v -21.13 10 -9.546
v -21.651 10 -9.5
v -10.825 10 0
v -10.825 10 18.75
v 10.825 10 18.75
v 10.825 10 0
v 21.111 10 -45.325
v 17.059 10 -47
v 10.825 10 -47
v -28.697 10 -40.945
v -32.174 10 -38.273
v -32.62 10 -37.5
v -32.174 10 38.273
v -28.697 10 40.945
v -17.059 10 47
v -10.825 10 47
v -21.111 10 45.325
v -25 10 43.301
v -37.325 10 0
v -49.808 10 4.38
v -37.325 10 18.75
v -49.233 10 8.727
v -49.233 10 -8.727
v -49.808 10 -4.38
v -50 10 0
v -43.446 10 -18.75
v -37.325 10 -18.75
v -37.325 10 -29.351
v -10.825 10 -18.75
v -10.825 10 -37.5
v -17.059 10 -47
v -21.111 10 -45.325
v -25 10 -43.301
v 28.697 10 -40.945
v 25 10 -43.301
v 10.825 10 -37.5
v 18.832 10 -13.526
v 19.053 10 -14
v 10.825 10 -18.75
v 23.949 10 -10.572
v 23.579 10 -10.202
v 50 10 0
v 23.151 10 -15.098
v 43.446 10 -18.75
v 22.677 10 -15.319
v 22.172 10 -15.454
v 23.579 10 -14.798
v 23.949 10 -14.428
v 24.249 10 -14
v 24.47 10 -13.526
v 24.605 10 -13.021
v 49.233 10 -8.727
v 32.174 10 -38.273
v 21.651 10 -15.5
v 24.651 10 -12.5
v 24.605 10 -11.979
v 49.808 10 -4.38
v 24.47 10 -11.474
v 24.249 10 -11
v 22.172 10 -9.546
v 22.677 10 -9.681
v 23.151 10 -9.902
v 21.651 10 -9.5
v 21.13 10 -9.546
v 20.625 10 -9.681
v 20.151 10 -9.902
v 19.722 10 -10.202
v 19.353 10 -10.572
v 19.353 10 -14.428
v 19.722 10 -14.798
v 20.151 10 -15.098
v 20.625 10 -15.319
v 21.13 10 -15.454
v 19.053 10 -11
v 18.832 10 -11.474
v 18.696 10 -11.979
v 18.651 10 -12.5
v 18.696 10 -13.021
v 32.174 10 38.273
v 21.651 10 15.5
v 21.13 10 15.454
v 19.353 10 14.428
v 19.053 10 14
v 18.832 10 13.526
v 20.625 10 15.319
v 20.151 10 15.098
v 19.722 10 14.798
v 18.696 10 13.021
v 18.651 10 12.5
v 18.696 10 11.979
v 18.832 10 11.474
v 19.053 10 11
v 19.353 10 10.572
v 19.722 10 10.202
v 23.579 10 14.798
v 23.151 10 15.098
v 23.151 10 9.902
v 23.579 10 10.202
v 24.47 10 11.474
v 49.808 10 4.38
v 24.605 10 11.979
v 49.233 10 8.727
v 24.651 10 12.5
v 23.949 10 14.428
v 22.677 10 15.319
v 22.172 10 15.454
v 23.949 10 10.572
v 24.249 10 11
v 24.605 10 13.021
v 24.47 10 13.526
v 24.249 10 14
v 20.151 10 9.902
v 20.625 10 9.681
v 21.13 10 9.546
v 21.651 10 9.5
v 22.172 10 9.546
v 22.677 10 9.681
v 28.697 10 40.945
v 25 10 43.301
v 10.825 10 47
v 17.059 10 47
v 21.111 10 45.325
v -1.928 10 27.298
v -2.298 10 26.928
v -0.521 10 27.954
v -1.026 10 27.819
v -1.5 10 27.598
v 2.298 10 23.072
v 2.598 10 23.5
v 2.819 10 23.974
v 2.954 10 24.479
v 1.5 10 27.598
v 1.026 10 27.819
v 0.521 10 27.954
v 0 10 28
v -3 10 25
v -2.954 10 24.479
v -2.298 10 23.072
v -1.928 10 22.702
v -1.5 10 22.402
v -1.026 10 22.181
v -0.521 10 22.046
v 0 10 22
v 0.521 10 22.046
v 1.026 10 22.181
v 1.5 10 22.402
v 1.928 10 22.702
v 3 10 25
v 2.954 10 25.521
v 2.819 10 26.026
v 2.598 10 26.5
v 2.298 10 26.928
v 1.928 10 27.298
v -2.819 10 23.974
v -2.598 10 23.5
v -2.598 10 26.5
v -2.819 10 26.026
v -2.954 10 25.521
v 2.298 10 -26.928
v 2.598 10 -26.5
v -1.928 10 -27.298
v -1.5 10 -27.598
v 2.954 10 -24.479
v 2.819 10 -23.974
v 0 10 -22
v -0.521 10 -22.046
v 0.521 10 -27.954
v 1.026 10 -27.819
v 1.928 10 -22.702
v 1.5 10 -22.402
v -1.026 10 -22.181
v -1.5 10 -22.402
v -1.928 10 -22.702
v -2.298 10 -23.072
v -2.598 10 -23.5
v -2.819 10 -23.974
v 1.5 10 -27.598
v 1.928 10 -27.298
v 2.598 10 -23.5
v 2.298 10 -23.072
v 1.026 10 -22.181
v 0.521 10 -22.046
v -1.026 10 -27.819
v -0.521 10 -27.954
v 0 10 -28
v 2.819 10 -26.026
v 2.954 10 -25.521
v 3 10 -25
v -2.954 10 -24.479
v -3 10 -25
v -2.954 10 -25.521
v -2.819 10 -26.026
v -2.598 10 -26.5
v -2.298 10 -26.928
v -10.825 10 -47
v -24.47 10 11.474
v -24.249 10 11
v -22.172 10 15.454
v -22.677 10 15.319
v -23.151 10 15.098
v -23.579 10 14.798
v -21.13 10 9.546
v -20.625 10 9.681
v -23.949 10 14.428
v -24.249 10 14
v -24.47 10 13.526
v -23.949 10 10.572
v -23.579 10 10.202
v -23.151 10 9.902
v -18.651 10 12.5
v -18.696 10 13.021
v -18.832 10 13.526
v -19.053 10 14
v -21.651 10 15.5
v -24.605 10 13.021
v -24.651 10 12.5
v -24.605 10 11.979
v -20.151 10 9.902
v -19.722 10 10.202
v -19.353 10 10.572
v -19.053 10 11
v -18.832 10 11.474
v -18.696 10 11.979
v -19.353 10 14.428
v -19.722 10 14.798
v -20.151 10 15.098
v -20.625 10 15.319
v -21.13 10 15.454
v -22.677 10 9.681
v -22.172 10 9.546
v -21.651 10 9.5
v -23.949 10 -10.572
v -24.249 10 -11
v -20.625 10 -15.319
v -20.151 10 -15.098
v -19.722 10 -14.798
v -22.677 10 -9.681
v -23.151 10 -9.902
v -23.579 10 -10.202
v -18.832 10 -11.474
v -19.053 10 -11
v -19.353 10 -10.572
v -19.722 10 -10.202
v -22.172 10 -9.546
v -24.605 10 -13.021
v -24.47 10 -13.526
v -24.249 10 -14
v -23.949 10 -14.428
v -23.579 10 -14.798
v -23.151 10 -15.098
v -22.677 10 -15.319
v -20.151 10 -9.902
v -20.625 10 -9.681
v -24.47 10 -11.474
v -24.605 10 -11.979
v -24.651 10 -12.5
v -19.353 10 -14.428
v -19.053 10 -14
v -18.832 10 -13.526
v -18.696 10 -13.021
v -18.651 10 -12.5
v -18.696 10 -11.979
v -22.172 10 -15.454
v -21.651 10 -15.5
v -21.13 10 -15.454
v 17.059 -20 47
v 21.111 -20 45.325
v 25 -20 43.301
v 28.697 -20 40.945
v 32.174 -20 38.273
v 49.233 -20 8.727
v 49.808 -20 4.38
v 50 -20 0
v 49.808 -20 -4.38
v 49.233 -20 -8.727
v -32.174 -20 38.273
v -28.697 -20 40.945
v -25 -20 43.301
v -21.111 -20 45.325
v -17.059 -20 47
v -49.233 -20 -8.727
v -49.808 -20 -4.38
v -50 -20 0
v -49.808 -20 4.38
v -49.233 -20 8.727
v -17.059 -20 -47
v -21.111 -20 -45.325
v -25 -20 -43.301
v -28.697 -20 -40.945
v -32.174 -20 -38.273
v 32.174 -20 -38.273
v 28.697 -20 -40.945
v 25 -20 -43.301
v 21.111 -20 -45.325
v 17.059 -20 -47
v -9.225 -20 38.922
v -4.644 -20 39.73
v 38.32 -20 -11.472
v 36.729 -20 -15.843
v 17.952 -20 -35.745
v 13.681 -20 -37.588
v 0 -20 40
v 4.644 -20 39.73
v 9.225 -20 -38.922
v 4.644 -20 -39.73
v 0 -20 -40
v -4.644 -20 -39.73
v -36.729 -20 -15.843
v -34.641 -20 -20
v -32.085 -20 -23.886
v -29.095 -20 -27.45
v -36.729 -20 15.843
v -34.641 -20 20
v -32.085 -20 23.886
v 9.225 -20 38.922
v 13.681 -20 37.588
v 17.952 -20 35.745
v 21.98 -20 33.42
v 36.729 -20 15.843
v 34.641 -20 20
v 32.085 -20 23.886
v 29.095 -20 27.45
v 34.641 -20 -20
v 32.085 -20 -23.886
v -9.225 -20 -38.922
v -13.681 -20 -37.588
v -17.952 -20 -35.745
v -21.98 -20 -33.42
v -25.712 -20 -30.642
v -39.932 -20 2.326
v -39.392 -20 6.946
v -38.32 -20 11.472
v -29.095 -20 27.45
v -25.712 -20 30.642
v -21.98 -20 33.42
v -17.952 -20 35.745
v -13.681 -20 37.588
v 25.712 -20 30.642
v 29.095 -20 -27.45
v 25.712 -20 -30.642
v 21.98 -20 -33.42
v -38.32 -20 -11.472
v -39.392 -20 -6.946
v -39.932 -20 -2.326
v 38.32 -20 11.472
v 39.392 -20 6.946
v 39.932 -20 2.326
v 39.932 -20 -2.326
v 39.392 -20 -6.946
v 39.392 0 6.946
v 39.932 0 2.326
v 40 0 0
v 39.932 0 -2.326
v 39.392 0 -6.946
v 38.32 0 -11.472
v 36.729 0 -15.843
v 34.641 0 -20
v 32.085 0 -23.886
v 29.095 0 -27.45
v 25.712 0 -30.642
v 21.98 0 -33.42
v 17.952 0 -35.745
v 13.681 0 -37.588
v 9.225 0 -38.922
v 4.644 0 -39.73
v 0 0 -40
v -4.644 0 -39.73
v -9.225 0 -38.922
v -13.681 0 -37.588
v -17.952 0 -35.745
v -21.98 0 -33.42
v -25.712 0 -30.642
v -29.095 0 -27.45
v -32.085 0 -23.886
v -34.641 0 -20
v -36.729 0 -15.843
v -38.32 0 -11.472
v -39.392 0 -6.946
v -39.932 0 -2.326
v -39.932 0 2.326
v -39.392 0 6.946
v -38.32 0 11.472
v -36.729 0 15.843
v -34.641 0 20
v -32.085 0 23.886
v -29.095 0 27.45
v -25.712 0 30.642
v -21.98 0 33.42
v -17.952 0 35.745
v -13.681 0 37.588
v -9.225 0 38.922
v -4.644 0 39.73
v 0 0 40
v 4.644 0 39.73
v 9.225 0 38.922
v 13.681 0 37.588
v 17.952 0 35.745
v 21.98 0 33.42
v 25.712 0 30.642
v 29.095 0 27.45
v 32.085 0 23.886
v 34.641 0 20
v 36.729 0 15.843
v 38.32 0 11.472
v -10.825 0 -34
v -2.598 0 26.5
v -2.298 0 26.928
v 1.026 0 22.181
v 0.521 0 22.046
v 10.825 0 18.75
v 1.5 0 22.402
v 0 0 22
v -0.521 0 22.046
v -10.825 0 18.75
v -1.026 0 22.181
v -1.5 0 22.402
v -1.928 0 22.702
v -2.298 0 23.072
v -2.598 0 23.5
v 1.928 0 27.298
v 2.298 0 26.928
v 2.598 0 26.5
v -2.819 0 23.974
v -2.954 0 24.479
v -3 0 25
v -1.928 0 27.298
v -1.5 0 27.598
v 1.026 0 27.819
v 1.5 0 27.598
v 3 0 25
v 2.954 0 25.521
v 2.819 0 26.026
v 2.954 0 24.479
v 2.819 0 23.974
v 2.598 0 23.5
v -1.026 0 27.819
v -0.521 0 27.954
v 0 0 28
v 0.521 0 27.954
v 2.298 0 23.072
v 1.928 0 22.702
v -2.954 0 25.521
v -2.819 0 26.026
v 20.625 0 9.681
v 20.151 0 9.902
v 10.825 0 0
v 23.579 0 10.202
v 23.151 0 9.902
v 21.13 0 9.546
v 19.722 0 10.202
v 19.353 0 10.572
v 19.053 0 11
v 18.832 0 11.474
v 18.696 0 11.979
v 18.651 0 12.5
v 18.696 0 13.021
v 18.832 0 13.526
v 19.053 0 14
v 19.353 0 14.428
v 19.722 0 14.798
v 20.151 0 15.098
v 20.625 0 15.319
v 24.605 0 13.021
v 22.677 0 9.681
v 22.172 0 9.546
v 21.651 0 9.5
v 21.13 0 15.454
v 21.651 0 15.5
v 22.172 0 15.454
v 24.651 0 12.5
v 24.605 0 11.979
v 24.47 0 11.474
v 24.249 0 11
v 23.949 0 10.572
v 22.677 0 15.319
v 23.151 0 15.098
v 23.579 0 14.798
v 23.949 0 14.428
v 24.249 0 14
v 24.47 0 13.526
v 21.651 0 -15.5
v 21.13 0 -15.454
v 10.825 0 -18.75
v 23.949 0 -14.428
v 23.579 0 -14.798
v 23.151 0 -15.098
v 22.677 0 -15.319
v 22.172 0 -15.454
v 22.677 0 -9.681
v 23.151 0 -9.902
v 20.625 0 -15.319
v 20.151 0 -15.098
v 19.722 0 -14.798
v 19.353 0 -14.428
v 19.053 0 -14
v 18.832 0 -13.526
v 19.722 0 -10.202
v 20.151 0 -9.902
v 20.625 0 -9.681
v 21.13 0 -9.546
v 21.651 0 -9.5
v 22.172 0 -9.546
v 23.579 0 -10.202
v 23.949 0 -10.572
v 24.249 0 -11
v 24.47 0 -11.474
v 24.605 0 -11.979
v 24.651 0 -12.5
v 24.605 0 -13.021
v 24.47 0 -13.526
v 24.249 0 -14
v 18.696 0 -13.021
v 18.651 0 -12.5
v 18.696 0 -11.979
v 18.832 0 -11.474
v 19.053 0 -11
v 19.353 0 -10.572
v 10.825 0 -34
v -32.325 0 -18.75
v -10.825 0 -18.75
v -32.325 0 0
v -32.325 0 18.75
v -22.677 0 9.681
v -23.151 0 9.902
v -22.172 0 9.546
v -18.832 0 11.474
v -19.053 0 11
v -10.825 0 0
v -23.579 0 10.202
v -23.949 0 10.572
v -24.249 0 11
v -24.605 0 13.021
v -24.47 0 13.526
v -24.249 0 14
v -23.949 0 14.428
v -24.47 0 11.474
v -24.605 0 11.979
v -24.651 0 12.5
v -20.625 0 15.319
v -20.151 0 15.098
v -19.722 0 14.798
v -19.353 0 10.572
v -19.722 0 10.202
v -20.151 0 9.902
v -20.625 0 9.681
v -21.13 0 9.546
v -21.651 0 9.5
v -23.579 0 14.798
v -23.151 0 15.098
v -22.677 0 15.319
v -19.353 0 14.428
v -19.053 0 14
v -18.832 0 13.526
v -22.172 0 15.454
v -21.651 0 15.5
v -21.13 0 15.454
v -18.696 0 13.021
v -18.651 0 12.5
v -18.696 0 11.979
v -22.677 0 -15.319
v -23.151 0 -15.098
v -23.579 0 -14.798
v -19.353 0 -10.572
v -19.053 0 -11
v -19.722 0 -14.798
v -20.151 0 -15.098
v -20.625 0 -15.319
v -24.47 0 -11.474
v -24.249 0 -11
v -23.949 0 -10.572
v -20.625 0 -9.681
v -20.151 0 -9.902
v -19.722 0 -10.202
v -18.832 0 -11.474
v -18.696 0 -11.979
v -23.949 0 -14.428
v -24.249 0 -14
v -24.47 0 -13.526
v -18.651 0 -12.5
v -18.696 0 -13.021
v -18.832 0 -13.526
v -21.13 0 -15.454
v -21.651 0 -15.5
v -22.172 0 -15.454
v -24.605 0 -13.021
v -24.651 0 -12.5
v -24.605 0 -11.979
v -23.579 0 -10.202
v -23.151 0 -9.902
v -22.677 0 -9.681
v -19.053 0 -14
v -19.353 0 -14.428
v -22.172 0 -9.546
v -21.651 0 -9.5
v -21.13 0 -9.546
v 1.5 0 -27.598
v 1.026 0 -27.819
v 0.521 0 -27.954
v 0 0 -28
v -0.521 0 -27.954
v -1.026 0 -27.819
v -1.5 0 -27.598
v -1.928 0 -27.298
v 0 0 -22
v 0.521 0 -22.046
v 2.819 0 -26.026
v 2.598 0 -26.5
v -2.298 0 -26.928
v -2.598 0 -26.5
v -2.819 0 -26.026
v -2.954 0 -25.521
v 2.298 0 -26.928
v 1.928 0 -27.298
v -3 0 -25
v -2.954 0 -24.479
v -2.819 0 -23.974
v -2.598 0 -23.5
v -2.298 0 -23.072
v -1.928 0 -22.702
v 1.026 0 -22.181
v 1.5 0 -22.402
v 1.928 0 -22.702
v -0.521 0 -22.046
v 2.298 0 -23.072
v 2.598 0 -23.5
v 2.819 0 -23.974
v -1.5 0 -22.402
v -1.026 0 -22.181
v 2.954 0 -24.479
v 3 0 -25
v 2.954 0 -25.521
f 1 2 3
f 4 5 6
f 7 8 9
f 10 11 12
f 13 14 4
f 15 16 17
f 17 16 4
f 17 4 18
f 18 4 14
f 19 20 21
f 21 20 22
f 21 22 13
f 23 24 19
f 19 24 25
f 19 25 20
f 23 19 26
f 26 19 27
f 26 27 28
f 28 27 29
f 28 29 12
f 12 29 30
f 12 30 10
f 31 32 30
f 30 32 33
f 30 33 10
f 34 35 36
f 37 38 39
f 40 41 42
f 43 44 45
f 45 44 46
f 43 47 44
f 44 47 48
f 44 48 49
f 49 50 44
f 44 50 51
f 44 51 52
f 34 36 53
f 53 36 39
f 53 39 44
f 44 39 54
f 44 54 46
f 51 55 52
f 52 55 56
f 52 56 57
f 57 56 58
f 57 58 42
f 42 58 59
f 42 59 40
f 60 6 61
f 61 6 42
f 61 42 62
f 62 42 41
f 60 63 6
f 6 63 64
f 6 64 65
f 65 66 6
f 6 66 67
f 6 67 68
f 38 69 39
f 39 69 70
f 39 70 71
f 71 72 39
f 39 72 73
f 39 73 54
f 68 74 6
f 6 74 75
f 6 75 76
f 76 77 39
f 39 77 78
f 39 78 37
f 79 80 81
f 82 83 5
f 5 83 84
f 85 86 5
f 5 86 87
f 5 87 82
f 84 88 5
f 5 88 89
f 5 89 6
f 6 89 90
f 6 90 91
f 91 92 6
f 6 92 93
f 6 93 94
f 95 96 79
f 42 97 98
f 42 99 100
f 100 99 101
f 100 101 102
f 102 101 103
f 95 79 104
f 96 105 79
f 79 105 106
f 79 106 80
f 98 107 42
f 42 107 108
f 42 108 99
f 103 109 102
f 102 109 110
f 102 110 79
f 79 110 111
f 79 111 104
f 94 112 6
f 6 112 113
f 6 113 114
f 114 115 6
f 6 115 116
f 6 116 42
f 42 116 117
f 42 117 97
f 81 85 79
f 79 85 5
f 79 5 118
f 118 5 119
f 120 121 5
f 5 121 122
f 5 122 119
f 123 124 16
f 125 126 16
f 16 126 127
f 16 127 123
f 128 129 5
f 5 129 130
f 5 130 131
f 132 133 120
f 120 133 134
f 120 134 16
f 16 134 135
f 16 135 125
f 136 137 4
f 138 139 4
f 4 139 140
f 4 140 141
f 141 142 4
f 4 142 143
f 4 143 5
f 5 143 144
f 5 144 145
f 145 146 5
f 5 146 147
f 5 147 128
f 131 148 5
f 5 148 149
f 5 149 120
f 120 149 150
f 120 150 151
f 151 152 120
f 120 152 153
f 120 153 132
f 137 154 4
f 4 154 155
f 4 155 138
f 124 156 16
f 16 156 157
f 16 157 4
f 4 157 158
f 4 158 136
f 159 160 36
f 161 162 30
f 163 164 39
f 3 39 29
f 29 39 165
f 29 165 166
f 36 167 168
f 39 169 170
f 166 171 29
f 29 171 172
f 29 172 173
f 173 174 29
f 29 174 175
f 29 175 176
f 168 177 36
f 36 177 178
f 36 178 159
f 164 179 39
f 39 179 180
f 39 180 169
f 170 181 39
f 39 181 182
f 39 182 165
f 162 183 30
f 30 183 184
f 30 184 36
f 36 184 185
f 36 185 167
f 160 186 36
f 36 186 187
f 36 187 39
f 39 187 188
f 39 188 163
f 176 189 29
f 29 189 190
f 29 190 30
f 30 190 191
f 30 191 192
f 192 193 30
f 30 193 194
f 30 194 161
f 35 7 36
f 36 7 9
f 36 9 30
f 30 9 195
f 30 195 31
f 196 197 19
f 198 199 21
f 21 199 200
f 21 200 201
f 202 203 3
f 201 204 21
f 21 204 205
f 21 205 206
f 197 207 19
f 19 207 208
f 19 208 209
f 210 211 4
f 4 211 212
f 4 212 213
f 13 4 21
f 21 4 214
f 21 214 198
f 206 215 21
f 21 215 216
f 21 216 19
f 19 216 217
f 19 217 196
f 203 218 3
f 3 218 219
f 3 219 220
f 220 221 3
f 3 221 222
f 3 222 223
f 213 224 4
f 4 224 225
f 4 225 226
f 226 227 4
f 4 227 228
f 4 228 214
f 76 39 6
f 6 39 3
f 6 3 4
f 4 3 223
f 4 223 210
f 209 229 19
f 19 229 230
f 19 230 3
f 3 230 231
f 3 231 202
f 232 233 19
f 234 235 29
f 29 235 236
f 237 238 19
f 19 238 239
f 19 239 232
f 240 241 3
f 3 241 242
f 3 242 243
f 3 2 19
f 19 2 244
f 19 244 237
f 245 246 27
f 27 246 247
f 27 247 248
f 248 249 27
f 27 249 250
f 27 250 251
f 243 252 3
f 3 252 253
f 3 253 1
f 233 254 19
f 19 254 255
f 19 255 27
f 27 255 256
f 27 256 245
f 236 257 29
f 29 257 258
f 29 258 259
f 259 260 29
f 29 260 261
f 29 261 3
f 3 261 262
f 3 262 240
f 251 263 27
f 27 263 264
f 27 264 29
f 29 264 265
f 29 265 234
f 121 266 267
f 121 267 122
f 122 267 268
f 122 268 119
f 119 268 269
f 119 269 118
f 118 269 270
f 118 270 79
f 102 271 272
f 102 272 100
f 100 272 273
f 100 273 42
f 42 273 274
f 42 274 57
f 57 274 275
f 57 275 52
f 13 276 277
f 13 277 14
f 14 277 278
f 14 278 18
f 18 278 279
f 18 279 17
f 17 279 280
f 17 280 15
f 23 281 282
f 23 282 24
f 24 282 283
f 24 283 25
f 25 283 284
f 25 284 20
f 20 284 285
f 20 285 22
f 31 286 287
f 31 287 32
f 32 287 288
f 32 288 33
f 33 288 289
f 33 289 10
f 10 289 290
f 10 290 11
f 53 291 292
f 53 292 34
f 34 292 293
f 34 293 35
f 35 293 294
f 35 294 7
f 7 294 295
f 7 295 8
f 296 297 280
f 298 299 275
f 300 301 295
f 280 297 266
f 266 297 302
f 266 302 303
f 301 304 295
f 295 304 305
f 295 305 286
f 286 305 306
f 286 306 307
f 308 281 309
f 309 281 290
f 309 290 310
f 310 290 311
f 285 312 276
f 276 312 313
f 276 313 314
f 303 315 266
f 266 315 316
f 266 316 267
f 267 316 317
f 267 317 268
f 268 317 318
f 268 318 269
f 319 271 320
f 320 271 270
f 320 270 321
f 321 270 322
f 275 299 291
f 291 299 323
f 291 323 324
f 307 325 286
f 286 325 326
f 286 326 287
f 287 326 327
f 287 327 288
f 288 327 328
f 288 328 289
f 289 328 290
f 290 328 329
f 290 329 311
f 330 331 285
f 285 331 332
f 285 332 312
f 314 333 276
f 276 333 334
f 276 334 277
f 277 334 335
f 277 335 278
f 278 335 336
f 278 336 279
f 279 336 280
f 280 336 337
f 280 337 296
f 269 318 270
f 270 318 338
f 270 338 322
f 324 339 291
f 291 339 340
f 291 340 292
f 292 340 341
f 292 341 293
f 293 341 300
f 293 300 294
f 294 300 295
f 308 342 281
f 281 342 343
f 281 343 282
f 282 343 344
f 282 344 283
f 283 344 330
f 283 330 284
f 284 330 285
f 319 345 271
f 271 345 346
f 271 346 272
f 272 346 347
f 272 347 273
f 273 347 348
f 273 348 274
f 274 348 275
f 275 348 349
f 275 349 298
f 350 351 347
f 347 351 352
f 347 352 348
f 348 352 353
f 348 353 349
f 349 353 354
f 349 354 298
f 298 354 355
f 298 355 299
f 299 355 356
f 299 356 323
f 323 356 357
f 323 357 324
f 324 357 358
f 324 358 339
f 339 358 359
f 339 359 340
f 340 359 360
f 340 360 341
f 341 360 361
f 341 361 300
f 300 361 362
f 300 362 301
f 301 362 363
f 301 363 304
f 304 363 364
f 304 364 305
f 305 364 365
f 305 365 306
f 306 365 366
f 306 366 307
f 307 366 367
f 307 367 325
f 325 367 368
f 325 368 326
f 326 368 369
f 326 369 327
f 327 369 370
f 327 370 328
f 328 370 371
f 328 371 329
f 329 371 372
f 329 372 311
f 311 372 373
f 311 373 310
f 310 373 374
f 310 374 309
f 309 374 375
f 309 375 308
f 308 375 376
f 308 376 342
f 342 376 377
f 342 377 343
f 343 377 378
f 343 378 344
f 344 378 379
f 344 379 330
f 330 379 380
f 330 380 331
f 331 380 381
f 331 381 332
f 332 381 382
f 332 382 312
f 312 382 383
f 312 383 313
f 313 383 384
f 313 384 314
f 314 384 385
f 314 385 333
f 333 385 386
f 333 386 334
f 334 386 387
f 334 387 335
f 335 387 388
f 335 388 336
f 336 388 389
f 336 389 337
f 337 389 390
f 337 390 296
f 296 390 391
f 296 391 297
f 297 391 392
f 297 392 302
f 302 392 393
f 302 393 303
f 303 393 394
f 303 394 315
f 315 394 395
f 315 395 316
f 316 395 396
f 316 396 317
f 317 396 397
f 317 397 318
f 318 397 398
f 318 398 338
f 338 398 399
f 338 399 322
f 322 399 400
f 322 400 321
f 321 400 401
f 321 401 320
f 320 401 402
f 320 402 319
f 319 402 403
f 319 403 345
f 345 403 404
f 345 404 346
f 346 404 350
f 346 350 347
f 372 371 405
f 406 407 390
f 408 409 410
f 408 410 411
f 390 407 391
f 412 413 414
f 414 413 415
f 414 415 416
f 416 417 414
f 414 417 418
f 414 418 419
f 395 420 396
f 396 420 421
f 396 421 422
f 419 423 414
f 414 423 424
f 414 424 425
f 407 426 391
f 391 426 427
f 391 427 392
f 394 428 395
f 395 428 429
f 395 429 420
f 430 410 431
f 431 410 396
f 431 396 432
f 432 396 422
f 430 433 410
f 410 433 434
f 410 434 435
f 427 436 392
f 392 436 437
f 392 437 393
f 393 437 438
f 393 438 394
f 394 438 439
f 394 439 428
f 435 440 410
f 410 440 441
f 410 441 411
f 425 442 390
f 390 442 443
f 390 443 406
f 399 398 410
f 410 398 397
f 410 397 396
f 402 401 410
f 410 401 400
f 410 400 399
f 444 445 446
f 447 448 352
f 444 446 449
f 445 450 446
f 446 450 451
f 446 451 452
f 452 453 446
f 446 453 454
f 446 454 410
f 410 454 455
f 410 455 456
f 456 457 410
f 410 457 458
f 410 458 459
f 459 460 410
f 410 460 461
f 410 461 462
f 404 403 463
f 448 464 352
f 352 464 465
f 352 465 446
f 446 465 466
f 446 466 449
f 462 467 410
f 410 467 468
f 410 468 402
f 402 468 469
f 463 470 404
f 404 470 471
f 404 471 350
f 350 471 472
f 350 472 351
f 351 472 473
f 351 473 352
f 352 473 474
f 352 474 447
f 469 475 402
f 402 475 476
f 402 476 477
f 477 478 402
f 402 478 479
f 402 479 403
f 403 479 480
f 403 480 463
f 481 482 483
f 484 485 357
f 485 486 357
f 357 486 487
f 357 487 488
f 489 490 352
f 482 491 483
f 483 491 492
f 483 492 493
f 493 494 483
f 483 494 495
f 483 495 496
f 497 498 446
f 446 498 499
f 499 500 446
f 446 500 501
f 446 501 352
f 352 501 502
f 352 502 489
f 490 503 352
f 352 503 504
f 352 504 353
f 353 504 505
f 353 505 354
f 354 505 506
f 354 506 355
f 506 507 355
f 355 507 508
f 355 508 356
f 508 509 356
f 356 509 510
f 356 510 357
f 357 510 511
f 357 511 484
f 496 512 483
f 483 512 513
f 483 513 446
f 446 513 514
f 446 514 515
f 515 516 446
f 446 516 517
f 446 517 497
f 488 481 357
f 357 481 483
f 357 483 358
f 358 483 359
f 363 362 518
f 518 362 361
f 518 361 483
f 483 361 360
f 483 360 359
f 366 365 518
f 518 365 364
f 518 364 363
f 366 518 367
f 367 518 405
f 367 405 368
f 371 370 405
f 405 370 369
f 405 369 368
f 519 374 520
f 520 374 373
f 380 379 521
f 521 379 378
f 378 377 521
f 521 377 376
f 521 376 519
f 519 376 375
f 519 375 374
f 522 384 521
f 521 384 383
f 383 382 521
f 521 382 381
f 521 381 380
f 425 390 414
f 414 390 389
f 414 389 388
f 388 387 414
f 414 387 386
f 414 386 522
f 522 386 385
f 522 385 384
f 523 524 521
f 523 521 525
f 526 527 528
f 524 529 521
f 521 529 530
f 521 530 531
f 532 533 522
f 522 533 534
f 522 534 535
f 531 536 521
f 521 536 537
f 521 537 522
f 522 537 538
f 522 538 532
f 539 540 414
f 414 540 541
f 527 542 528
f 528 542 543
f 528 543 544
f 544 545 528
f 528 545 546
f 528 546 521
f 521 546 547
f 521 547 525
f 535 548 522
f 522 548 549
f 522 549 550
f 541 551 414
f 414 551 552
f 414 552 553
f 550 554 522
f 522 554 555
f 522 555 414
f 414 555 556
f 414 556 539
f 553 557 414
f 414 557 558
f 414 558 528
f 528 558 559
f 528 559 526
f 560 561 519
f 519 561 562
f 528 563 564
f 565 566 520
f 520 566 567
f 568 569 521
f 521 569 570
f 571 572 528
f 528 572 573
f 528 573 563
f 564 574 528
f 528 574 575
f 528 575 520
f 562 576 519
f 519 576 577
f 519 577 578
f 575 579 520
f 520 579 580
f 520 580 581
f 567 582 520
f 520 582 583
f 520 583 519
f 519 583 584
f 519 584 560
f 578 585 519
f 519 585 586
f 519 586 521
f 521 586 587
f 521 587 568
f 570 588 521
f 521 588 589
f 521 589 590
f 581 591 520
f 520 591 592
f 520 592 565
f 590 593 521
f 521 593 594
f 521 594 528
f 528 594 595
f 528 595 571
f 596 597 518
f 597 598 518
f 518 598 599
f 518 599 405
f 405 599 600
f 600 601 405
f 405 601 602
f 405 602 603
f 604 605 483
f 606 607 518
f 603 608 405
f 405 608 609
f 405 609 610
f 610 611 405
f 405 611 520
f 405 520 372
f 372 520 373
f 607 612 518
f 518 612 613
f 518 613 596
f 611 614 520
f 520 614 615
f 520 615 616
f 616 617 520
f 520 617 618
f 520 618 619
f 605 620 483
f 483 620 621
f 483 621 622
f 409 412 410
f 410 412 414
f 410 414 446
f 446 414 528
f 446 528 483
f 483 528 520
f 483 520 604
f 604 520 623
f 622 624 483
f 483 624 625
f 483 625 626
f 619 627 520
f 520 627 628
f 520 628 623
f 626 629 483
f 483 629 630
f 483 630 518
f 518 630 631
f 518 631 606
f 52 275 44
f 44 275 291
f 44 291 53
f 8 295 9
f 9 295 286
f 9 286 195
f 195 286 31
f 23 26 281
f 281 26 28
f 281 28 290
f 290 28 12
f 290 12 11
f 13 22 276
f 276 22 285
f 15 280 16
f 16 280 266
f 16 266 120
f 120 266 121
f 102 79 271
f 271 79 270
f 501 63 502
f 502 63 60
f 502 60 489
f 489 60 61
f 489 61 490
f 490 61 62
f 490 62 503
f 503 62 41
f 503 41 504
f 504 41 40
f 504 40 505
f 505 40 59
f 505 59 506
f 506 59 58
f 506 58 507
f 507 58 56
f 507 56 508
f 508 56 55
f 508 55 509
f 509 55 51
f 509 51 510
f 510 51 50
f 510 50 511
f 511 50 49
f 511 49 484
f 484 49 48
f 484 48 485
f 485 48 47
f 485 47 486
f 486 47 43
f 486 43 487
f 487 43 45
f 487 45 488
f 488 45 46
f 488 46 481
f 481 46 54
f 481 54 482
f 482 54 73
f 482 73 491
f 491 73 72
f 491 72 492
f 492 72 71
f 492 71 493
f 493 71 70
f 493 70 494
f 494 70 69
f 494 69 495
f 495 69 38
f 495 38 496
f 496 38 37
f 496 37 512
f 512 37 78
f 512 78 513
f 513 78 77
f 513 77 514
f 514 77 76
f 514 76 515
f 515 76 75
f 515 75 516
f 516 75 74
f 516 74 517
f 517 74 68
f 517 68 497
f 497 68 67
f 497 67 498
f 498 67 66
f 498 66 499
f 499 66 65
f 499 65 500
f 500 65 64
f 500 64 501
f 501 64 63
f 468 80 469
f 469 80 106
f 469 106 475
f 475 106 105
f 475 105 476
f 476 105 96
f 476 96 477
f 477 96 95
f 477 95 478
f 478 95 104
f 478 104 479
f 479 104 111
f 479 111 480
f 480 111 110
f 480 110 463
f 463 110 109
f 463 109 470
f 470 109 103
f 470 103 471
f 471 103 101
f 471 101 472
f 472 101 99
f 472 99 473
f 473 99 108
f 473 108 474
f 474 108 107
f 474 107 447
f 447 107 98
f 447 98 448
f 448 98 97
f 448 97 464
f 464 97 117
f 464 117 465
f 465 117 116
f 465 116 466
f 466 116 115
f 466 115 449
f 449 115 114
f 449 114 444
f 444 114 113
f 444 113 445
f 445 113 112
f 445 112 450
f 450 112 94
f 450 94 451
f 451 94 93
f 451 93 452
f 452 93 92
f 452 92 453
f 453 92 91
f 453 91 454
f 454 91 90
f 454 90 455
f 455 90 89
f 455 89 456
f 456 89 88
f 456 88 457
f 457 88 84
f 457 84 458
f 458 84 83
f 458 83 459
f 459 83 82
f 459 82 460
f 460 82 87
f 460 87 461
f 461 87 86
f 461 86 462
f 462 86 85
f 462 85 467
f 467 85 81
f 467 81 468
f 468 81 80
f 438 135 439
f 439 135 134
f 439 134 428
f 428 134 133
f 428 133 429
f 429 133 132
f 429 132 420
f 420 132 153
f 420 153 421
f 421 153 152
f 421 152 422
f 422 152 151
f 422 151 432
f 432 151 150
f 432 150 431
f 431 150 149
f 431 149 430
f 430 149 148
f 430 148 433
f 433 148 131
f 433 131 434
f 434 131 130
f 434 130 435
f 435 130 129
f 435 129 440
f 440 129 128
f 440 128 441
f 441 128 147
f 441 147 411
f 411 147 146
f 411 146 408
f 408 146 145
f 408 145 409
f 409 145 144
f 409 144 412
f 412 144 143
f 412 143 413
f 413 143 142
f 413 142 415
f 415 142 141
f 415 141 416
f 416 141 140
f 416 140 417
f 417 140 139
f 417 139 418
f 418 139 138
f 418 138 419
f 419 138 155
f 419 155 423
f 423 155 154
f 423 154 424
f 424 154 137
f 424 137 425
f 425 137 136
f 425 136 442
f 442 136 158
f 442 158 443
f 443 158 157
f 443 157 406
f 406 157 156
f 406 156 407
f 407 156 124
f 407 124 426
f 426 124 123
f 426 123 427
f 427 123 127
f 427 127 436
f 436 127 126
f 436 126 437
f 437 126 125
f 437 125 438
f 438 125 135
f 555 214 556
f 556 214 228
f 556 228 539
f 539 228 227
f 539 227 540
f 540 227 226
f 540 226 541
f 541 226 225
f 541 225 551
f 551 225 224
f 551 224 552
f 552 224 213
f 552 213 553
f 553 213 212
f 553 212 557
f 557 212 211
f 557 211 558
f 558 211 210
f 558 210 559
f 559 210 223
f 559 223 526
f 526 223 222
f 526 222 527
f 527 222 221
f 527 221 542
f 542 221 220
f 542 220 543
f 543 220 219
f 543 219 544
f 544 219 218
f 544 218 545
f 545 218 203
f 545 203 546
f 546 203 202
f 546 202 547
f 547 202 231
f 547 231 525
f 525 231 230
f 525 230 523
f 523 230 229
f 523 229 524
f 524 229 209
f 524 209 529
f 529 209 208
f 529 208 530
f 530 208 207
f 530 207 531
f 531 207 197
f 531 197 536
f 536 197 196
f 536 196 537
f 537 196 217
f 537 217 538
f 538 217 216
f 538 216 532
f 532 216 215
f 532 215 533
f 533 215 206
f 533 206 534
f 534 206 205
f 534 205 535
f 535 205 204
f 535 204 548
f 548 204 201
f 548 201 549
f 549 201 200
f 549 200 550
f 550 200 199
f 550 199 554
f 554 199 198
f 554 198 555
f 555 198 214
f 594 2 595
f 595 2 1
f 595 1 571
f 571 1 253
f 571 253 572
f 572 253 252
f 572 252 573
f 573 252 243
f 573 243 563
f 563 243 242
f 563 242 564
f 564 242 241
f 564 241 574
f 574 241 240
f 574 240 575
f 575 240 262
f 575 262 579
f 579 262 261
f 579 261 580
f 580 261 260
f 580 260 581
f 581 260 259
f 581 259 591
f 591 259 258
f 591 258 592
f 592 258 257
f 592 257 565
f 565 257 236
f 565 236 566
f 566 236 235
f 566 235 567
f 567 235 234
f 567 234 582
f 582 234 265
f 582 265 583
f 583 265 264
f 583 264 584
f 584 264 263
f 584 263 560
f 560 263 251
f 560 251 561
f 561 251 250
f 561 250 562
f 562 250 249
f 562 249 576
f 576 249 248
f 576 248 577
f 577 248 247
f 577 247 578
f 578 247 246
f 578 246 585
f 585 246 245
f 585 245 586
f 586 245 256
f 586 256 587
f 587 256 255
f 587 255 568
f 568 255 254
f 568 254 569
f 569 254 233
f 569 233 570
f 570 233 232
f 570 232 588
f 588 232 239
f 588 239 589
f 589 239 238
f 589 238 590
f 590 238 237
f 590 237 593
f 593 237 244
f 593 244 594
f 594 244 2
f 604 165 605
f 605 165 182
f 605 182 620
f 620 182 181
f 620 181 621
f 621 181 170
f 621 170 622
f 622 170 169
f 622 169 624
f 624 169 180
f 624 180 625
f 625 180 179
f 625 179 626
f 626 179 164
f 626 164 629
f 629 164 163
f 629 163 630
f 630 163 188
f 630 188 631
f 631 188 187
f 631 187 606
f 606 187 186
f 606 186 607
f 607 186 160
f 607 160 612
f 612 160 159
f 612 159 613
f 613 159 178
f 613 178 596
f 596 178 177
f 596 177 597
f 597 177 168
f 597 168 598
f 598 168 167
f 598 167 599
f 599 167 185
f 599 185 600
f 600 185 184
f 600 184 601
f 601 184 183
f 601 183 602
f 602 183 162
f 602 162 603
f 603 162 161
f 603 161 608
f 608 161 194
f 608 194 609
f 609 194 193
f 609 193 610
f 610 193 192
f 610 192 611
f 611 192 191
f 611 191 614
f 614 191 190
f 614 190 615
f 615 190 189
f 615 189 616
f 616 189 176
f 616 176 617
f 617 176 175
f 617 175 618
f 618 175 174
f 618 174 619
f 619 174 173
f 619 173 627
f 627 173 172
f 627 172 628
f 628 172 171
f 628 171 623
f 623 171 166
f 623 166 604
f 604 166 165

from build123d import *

# Parameters (mm, degrees)
SKETCH2_R                = 40
BOSS_EXTRUDE1_DEPTH      = 10
EXTRUDE_THIN1_DEPTH      = 20
EXTRUDE_THIN1_DEPTH_BACK = 10
SKETCH3_R                = 50
SKETCH3_R_2              = 40
SKETCH4_OUTSIDE_W        = 130.914
SKETCH4_OUTSIDE_H        = 130.914
CUT_EXTRUDE1_DEPTH       = 77.811457479
SKETCH5_R                = 3
CUT_EXTRUDE2_DEPTH       = 75.893257373


with BuildPart() as part:
    # Sketch2 → Boss-Extrude1 (new body)
    with BuildSketch(Plane(origin=(0, 0, 0), x_dir=(1, 0, 0), z_dir=(0, 1, 0))):
        with Locations(Location((0, 0, 0), (0, 0, 270))):
            Circle(SKETCH2_R)
    extrude(amount=BOSS_EXTRUDE1_DEPTH)

    # Sketch3 → Extrude-Thin1 (add, two sides: drawn at the far end of the back side and taken through both)
    with BuildSketch(Plane.XZ.offset(-EXTRUDE_THIN1_DEPTH_BACK)):
        Circle(SKETCH3_R)
        Circle(SKETCH3_R_2, mode=Mode.SUBTRACT)
    extrude(amount=EXTRUDE_THIN1_DEPTH + EXTRUDE_THIN1_DEPTH_BACK)

    # Sketch4 outside → Cut-Extrude1 (cut, through all)
    with BuildSketch(Plane(origin=(0, 10, 0), x_dir=(1, 0, 0), z_dir=(0, 1, 0))):
        Rectangle(SKETCH4_OUTSIDE_W, SKETCH4_OUTSIDE_H)
        Polygon((54.270925304, 0), (27.135462652, 47), (-27.135462652, 47), (-54.270925304, 0), (-27.135462652, -47), (27.135462652, -47), align=None, mode=Mode.SUBTRACT)
    extrude(amount=-CUT_EXTRUDE1_DEPTH, mode=Mode.SUBTRACT)

    # Sketch5 → Cut-Extrude2 (cut, through all)
    with BuildSketch(Plane(origin=(0, 10, 0), x_dir=(1, 0, 0), z_dir=(0, 1, 0))):
        with Locations(Location((0, 25, 0), (0, 0, 270))):
            Circle(SKETCH5_R)
        with Locations(Location((21.650635095, 12.5, 0), (0, 0, 270))):
            Circle(SKETCH5_R)
        with Locations(Location((21.650635095, -12.5, 0), (0, 0, 270))):
            Circle(SKETCH5_R)
        with Locations(Location((0, -25, 0), (0, 0, 270))):
            Circle(SKETCH5_R)
        with Locations(Location((-21.650635095, -12.5, 0), (0, 0, 270))):
            Circle(SKETCH5_R)
        with Locations(Location((-21.650635095, 12.5, 0), (0, 0, 270))):
            Circle(SKETCH5_R)
    extrude(amount=-CUT_EXTRUDE2_DEPTH, mode=Mode.SUBTRACT)


solid = part.part
